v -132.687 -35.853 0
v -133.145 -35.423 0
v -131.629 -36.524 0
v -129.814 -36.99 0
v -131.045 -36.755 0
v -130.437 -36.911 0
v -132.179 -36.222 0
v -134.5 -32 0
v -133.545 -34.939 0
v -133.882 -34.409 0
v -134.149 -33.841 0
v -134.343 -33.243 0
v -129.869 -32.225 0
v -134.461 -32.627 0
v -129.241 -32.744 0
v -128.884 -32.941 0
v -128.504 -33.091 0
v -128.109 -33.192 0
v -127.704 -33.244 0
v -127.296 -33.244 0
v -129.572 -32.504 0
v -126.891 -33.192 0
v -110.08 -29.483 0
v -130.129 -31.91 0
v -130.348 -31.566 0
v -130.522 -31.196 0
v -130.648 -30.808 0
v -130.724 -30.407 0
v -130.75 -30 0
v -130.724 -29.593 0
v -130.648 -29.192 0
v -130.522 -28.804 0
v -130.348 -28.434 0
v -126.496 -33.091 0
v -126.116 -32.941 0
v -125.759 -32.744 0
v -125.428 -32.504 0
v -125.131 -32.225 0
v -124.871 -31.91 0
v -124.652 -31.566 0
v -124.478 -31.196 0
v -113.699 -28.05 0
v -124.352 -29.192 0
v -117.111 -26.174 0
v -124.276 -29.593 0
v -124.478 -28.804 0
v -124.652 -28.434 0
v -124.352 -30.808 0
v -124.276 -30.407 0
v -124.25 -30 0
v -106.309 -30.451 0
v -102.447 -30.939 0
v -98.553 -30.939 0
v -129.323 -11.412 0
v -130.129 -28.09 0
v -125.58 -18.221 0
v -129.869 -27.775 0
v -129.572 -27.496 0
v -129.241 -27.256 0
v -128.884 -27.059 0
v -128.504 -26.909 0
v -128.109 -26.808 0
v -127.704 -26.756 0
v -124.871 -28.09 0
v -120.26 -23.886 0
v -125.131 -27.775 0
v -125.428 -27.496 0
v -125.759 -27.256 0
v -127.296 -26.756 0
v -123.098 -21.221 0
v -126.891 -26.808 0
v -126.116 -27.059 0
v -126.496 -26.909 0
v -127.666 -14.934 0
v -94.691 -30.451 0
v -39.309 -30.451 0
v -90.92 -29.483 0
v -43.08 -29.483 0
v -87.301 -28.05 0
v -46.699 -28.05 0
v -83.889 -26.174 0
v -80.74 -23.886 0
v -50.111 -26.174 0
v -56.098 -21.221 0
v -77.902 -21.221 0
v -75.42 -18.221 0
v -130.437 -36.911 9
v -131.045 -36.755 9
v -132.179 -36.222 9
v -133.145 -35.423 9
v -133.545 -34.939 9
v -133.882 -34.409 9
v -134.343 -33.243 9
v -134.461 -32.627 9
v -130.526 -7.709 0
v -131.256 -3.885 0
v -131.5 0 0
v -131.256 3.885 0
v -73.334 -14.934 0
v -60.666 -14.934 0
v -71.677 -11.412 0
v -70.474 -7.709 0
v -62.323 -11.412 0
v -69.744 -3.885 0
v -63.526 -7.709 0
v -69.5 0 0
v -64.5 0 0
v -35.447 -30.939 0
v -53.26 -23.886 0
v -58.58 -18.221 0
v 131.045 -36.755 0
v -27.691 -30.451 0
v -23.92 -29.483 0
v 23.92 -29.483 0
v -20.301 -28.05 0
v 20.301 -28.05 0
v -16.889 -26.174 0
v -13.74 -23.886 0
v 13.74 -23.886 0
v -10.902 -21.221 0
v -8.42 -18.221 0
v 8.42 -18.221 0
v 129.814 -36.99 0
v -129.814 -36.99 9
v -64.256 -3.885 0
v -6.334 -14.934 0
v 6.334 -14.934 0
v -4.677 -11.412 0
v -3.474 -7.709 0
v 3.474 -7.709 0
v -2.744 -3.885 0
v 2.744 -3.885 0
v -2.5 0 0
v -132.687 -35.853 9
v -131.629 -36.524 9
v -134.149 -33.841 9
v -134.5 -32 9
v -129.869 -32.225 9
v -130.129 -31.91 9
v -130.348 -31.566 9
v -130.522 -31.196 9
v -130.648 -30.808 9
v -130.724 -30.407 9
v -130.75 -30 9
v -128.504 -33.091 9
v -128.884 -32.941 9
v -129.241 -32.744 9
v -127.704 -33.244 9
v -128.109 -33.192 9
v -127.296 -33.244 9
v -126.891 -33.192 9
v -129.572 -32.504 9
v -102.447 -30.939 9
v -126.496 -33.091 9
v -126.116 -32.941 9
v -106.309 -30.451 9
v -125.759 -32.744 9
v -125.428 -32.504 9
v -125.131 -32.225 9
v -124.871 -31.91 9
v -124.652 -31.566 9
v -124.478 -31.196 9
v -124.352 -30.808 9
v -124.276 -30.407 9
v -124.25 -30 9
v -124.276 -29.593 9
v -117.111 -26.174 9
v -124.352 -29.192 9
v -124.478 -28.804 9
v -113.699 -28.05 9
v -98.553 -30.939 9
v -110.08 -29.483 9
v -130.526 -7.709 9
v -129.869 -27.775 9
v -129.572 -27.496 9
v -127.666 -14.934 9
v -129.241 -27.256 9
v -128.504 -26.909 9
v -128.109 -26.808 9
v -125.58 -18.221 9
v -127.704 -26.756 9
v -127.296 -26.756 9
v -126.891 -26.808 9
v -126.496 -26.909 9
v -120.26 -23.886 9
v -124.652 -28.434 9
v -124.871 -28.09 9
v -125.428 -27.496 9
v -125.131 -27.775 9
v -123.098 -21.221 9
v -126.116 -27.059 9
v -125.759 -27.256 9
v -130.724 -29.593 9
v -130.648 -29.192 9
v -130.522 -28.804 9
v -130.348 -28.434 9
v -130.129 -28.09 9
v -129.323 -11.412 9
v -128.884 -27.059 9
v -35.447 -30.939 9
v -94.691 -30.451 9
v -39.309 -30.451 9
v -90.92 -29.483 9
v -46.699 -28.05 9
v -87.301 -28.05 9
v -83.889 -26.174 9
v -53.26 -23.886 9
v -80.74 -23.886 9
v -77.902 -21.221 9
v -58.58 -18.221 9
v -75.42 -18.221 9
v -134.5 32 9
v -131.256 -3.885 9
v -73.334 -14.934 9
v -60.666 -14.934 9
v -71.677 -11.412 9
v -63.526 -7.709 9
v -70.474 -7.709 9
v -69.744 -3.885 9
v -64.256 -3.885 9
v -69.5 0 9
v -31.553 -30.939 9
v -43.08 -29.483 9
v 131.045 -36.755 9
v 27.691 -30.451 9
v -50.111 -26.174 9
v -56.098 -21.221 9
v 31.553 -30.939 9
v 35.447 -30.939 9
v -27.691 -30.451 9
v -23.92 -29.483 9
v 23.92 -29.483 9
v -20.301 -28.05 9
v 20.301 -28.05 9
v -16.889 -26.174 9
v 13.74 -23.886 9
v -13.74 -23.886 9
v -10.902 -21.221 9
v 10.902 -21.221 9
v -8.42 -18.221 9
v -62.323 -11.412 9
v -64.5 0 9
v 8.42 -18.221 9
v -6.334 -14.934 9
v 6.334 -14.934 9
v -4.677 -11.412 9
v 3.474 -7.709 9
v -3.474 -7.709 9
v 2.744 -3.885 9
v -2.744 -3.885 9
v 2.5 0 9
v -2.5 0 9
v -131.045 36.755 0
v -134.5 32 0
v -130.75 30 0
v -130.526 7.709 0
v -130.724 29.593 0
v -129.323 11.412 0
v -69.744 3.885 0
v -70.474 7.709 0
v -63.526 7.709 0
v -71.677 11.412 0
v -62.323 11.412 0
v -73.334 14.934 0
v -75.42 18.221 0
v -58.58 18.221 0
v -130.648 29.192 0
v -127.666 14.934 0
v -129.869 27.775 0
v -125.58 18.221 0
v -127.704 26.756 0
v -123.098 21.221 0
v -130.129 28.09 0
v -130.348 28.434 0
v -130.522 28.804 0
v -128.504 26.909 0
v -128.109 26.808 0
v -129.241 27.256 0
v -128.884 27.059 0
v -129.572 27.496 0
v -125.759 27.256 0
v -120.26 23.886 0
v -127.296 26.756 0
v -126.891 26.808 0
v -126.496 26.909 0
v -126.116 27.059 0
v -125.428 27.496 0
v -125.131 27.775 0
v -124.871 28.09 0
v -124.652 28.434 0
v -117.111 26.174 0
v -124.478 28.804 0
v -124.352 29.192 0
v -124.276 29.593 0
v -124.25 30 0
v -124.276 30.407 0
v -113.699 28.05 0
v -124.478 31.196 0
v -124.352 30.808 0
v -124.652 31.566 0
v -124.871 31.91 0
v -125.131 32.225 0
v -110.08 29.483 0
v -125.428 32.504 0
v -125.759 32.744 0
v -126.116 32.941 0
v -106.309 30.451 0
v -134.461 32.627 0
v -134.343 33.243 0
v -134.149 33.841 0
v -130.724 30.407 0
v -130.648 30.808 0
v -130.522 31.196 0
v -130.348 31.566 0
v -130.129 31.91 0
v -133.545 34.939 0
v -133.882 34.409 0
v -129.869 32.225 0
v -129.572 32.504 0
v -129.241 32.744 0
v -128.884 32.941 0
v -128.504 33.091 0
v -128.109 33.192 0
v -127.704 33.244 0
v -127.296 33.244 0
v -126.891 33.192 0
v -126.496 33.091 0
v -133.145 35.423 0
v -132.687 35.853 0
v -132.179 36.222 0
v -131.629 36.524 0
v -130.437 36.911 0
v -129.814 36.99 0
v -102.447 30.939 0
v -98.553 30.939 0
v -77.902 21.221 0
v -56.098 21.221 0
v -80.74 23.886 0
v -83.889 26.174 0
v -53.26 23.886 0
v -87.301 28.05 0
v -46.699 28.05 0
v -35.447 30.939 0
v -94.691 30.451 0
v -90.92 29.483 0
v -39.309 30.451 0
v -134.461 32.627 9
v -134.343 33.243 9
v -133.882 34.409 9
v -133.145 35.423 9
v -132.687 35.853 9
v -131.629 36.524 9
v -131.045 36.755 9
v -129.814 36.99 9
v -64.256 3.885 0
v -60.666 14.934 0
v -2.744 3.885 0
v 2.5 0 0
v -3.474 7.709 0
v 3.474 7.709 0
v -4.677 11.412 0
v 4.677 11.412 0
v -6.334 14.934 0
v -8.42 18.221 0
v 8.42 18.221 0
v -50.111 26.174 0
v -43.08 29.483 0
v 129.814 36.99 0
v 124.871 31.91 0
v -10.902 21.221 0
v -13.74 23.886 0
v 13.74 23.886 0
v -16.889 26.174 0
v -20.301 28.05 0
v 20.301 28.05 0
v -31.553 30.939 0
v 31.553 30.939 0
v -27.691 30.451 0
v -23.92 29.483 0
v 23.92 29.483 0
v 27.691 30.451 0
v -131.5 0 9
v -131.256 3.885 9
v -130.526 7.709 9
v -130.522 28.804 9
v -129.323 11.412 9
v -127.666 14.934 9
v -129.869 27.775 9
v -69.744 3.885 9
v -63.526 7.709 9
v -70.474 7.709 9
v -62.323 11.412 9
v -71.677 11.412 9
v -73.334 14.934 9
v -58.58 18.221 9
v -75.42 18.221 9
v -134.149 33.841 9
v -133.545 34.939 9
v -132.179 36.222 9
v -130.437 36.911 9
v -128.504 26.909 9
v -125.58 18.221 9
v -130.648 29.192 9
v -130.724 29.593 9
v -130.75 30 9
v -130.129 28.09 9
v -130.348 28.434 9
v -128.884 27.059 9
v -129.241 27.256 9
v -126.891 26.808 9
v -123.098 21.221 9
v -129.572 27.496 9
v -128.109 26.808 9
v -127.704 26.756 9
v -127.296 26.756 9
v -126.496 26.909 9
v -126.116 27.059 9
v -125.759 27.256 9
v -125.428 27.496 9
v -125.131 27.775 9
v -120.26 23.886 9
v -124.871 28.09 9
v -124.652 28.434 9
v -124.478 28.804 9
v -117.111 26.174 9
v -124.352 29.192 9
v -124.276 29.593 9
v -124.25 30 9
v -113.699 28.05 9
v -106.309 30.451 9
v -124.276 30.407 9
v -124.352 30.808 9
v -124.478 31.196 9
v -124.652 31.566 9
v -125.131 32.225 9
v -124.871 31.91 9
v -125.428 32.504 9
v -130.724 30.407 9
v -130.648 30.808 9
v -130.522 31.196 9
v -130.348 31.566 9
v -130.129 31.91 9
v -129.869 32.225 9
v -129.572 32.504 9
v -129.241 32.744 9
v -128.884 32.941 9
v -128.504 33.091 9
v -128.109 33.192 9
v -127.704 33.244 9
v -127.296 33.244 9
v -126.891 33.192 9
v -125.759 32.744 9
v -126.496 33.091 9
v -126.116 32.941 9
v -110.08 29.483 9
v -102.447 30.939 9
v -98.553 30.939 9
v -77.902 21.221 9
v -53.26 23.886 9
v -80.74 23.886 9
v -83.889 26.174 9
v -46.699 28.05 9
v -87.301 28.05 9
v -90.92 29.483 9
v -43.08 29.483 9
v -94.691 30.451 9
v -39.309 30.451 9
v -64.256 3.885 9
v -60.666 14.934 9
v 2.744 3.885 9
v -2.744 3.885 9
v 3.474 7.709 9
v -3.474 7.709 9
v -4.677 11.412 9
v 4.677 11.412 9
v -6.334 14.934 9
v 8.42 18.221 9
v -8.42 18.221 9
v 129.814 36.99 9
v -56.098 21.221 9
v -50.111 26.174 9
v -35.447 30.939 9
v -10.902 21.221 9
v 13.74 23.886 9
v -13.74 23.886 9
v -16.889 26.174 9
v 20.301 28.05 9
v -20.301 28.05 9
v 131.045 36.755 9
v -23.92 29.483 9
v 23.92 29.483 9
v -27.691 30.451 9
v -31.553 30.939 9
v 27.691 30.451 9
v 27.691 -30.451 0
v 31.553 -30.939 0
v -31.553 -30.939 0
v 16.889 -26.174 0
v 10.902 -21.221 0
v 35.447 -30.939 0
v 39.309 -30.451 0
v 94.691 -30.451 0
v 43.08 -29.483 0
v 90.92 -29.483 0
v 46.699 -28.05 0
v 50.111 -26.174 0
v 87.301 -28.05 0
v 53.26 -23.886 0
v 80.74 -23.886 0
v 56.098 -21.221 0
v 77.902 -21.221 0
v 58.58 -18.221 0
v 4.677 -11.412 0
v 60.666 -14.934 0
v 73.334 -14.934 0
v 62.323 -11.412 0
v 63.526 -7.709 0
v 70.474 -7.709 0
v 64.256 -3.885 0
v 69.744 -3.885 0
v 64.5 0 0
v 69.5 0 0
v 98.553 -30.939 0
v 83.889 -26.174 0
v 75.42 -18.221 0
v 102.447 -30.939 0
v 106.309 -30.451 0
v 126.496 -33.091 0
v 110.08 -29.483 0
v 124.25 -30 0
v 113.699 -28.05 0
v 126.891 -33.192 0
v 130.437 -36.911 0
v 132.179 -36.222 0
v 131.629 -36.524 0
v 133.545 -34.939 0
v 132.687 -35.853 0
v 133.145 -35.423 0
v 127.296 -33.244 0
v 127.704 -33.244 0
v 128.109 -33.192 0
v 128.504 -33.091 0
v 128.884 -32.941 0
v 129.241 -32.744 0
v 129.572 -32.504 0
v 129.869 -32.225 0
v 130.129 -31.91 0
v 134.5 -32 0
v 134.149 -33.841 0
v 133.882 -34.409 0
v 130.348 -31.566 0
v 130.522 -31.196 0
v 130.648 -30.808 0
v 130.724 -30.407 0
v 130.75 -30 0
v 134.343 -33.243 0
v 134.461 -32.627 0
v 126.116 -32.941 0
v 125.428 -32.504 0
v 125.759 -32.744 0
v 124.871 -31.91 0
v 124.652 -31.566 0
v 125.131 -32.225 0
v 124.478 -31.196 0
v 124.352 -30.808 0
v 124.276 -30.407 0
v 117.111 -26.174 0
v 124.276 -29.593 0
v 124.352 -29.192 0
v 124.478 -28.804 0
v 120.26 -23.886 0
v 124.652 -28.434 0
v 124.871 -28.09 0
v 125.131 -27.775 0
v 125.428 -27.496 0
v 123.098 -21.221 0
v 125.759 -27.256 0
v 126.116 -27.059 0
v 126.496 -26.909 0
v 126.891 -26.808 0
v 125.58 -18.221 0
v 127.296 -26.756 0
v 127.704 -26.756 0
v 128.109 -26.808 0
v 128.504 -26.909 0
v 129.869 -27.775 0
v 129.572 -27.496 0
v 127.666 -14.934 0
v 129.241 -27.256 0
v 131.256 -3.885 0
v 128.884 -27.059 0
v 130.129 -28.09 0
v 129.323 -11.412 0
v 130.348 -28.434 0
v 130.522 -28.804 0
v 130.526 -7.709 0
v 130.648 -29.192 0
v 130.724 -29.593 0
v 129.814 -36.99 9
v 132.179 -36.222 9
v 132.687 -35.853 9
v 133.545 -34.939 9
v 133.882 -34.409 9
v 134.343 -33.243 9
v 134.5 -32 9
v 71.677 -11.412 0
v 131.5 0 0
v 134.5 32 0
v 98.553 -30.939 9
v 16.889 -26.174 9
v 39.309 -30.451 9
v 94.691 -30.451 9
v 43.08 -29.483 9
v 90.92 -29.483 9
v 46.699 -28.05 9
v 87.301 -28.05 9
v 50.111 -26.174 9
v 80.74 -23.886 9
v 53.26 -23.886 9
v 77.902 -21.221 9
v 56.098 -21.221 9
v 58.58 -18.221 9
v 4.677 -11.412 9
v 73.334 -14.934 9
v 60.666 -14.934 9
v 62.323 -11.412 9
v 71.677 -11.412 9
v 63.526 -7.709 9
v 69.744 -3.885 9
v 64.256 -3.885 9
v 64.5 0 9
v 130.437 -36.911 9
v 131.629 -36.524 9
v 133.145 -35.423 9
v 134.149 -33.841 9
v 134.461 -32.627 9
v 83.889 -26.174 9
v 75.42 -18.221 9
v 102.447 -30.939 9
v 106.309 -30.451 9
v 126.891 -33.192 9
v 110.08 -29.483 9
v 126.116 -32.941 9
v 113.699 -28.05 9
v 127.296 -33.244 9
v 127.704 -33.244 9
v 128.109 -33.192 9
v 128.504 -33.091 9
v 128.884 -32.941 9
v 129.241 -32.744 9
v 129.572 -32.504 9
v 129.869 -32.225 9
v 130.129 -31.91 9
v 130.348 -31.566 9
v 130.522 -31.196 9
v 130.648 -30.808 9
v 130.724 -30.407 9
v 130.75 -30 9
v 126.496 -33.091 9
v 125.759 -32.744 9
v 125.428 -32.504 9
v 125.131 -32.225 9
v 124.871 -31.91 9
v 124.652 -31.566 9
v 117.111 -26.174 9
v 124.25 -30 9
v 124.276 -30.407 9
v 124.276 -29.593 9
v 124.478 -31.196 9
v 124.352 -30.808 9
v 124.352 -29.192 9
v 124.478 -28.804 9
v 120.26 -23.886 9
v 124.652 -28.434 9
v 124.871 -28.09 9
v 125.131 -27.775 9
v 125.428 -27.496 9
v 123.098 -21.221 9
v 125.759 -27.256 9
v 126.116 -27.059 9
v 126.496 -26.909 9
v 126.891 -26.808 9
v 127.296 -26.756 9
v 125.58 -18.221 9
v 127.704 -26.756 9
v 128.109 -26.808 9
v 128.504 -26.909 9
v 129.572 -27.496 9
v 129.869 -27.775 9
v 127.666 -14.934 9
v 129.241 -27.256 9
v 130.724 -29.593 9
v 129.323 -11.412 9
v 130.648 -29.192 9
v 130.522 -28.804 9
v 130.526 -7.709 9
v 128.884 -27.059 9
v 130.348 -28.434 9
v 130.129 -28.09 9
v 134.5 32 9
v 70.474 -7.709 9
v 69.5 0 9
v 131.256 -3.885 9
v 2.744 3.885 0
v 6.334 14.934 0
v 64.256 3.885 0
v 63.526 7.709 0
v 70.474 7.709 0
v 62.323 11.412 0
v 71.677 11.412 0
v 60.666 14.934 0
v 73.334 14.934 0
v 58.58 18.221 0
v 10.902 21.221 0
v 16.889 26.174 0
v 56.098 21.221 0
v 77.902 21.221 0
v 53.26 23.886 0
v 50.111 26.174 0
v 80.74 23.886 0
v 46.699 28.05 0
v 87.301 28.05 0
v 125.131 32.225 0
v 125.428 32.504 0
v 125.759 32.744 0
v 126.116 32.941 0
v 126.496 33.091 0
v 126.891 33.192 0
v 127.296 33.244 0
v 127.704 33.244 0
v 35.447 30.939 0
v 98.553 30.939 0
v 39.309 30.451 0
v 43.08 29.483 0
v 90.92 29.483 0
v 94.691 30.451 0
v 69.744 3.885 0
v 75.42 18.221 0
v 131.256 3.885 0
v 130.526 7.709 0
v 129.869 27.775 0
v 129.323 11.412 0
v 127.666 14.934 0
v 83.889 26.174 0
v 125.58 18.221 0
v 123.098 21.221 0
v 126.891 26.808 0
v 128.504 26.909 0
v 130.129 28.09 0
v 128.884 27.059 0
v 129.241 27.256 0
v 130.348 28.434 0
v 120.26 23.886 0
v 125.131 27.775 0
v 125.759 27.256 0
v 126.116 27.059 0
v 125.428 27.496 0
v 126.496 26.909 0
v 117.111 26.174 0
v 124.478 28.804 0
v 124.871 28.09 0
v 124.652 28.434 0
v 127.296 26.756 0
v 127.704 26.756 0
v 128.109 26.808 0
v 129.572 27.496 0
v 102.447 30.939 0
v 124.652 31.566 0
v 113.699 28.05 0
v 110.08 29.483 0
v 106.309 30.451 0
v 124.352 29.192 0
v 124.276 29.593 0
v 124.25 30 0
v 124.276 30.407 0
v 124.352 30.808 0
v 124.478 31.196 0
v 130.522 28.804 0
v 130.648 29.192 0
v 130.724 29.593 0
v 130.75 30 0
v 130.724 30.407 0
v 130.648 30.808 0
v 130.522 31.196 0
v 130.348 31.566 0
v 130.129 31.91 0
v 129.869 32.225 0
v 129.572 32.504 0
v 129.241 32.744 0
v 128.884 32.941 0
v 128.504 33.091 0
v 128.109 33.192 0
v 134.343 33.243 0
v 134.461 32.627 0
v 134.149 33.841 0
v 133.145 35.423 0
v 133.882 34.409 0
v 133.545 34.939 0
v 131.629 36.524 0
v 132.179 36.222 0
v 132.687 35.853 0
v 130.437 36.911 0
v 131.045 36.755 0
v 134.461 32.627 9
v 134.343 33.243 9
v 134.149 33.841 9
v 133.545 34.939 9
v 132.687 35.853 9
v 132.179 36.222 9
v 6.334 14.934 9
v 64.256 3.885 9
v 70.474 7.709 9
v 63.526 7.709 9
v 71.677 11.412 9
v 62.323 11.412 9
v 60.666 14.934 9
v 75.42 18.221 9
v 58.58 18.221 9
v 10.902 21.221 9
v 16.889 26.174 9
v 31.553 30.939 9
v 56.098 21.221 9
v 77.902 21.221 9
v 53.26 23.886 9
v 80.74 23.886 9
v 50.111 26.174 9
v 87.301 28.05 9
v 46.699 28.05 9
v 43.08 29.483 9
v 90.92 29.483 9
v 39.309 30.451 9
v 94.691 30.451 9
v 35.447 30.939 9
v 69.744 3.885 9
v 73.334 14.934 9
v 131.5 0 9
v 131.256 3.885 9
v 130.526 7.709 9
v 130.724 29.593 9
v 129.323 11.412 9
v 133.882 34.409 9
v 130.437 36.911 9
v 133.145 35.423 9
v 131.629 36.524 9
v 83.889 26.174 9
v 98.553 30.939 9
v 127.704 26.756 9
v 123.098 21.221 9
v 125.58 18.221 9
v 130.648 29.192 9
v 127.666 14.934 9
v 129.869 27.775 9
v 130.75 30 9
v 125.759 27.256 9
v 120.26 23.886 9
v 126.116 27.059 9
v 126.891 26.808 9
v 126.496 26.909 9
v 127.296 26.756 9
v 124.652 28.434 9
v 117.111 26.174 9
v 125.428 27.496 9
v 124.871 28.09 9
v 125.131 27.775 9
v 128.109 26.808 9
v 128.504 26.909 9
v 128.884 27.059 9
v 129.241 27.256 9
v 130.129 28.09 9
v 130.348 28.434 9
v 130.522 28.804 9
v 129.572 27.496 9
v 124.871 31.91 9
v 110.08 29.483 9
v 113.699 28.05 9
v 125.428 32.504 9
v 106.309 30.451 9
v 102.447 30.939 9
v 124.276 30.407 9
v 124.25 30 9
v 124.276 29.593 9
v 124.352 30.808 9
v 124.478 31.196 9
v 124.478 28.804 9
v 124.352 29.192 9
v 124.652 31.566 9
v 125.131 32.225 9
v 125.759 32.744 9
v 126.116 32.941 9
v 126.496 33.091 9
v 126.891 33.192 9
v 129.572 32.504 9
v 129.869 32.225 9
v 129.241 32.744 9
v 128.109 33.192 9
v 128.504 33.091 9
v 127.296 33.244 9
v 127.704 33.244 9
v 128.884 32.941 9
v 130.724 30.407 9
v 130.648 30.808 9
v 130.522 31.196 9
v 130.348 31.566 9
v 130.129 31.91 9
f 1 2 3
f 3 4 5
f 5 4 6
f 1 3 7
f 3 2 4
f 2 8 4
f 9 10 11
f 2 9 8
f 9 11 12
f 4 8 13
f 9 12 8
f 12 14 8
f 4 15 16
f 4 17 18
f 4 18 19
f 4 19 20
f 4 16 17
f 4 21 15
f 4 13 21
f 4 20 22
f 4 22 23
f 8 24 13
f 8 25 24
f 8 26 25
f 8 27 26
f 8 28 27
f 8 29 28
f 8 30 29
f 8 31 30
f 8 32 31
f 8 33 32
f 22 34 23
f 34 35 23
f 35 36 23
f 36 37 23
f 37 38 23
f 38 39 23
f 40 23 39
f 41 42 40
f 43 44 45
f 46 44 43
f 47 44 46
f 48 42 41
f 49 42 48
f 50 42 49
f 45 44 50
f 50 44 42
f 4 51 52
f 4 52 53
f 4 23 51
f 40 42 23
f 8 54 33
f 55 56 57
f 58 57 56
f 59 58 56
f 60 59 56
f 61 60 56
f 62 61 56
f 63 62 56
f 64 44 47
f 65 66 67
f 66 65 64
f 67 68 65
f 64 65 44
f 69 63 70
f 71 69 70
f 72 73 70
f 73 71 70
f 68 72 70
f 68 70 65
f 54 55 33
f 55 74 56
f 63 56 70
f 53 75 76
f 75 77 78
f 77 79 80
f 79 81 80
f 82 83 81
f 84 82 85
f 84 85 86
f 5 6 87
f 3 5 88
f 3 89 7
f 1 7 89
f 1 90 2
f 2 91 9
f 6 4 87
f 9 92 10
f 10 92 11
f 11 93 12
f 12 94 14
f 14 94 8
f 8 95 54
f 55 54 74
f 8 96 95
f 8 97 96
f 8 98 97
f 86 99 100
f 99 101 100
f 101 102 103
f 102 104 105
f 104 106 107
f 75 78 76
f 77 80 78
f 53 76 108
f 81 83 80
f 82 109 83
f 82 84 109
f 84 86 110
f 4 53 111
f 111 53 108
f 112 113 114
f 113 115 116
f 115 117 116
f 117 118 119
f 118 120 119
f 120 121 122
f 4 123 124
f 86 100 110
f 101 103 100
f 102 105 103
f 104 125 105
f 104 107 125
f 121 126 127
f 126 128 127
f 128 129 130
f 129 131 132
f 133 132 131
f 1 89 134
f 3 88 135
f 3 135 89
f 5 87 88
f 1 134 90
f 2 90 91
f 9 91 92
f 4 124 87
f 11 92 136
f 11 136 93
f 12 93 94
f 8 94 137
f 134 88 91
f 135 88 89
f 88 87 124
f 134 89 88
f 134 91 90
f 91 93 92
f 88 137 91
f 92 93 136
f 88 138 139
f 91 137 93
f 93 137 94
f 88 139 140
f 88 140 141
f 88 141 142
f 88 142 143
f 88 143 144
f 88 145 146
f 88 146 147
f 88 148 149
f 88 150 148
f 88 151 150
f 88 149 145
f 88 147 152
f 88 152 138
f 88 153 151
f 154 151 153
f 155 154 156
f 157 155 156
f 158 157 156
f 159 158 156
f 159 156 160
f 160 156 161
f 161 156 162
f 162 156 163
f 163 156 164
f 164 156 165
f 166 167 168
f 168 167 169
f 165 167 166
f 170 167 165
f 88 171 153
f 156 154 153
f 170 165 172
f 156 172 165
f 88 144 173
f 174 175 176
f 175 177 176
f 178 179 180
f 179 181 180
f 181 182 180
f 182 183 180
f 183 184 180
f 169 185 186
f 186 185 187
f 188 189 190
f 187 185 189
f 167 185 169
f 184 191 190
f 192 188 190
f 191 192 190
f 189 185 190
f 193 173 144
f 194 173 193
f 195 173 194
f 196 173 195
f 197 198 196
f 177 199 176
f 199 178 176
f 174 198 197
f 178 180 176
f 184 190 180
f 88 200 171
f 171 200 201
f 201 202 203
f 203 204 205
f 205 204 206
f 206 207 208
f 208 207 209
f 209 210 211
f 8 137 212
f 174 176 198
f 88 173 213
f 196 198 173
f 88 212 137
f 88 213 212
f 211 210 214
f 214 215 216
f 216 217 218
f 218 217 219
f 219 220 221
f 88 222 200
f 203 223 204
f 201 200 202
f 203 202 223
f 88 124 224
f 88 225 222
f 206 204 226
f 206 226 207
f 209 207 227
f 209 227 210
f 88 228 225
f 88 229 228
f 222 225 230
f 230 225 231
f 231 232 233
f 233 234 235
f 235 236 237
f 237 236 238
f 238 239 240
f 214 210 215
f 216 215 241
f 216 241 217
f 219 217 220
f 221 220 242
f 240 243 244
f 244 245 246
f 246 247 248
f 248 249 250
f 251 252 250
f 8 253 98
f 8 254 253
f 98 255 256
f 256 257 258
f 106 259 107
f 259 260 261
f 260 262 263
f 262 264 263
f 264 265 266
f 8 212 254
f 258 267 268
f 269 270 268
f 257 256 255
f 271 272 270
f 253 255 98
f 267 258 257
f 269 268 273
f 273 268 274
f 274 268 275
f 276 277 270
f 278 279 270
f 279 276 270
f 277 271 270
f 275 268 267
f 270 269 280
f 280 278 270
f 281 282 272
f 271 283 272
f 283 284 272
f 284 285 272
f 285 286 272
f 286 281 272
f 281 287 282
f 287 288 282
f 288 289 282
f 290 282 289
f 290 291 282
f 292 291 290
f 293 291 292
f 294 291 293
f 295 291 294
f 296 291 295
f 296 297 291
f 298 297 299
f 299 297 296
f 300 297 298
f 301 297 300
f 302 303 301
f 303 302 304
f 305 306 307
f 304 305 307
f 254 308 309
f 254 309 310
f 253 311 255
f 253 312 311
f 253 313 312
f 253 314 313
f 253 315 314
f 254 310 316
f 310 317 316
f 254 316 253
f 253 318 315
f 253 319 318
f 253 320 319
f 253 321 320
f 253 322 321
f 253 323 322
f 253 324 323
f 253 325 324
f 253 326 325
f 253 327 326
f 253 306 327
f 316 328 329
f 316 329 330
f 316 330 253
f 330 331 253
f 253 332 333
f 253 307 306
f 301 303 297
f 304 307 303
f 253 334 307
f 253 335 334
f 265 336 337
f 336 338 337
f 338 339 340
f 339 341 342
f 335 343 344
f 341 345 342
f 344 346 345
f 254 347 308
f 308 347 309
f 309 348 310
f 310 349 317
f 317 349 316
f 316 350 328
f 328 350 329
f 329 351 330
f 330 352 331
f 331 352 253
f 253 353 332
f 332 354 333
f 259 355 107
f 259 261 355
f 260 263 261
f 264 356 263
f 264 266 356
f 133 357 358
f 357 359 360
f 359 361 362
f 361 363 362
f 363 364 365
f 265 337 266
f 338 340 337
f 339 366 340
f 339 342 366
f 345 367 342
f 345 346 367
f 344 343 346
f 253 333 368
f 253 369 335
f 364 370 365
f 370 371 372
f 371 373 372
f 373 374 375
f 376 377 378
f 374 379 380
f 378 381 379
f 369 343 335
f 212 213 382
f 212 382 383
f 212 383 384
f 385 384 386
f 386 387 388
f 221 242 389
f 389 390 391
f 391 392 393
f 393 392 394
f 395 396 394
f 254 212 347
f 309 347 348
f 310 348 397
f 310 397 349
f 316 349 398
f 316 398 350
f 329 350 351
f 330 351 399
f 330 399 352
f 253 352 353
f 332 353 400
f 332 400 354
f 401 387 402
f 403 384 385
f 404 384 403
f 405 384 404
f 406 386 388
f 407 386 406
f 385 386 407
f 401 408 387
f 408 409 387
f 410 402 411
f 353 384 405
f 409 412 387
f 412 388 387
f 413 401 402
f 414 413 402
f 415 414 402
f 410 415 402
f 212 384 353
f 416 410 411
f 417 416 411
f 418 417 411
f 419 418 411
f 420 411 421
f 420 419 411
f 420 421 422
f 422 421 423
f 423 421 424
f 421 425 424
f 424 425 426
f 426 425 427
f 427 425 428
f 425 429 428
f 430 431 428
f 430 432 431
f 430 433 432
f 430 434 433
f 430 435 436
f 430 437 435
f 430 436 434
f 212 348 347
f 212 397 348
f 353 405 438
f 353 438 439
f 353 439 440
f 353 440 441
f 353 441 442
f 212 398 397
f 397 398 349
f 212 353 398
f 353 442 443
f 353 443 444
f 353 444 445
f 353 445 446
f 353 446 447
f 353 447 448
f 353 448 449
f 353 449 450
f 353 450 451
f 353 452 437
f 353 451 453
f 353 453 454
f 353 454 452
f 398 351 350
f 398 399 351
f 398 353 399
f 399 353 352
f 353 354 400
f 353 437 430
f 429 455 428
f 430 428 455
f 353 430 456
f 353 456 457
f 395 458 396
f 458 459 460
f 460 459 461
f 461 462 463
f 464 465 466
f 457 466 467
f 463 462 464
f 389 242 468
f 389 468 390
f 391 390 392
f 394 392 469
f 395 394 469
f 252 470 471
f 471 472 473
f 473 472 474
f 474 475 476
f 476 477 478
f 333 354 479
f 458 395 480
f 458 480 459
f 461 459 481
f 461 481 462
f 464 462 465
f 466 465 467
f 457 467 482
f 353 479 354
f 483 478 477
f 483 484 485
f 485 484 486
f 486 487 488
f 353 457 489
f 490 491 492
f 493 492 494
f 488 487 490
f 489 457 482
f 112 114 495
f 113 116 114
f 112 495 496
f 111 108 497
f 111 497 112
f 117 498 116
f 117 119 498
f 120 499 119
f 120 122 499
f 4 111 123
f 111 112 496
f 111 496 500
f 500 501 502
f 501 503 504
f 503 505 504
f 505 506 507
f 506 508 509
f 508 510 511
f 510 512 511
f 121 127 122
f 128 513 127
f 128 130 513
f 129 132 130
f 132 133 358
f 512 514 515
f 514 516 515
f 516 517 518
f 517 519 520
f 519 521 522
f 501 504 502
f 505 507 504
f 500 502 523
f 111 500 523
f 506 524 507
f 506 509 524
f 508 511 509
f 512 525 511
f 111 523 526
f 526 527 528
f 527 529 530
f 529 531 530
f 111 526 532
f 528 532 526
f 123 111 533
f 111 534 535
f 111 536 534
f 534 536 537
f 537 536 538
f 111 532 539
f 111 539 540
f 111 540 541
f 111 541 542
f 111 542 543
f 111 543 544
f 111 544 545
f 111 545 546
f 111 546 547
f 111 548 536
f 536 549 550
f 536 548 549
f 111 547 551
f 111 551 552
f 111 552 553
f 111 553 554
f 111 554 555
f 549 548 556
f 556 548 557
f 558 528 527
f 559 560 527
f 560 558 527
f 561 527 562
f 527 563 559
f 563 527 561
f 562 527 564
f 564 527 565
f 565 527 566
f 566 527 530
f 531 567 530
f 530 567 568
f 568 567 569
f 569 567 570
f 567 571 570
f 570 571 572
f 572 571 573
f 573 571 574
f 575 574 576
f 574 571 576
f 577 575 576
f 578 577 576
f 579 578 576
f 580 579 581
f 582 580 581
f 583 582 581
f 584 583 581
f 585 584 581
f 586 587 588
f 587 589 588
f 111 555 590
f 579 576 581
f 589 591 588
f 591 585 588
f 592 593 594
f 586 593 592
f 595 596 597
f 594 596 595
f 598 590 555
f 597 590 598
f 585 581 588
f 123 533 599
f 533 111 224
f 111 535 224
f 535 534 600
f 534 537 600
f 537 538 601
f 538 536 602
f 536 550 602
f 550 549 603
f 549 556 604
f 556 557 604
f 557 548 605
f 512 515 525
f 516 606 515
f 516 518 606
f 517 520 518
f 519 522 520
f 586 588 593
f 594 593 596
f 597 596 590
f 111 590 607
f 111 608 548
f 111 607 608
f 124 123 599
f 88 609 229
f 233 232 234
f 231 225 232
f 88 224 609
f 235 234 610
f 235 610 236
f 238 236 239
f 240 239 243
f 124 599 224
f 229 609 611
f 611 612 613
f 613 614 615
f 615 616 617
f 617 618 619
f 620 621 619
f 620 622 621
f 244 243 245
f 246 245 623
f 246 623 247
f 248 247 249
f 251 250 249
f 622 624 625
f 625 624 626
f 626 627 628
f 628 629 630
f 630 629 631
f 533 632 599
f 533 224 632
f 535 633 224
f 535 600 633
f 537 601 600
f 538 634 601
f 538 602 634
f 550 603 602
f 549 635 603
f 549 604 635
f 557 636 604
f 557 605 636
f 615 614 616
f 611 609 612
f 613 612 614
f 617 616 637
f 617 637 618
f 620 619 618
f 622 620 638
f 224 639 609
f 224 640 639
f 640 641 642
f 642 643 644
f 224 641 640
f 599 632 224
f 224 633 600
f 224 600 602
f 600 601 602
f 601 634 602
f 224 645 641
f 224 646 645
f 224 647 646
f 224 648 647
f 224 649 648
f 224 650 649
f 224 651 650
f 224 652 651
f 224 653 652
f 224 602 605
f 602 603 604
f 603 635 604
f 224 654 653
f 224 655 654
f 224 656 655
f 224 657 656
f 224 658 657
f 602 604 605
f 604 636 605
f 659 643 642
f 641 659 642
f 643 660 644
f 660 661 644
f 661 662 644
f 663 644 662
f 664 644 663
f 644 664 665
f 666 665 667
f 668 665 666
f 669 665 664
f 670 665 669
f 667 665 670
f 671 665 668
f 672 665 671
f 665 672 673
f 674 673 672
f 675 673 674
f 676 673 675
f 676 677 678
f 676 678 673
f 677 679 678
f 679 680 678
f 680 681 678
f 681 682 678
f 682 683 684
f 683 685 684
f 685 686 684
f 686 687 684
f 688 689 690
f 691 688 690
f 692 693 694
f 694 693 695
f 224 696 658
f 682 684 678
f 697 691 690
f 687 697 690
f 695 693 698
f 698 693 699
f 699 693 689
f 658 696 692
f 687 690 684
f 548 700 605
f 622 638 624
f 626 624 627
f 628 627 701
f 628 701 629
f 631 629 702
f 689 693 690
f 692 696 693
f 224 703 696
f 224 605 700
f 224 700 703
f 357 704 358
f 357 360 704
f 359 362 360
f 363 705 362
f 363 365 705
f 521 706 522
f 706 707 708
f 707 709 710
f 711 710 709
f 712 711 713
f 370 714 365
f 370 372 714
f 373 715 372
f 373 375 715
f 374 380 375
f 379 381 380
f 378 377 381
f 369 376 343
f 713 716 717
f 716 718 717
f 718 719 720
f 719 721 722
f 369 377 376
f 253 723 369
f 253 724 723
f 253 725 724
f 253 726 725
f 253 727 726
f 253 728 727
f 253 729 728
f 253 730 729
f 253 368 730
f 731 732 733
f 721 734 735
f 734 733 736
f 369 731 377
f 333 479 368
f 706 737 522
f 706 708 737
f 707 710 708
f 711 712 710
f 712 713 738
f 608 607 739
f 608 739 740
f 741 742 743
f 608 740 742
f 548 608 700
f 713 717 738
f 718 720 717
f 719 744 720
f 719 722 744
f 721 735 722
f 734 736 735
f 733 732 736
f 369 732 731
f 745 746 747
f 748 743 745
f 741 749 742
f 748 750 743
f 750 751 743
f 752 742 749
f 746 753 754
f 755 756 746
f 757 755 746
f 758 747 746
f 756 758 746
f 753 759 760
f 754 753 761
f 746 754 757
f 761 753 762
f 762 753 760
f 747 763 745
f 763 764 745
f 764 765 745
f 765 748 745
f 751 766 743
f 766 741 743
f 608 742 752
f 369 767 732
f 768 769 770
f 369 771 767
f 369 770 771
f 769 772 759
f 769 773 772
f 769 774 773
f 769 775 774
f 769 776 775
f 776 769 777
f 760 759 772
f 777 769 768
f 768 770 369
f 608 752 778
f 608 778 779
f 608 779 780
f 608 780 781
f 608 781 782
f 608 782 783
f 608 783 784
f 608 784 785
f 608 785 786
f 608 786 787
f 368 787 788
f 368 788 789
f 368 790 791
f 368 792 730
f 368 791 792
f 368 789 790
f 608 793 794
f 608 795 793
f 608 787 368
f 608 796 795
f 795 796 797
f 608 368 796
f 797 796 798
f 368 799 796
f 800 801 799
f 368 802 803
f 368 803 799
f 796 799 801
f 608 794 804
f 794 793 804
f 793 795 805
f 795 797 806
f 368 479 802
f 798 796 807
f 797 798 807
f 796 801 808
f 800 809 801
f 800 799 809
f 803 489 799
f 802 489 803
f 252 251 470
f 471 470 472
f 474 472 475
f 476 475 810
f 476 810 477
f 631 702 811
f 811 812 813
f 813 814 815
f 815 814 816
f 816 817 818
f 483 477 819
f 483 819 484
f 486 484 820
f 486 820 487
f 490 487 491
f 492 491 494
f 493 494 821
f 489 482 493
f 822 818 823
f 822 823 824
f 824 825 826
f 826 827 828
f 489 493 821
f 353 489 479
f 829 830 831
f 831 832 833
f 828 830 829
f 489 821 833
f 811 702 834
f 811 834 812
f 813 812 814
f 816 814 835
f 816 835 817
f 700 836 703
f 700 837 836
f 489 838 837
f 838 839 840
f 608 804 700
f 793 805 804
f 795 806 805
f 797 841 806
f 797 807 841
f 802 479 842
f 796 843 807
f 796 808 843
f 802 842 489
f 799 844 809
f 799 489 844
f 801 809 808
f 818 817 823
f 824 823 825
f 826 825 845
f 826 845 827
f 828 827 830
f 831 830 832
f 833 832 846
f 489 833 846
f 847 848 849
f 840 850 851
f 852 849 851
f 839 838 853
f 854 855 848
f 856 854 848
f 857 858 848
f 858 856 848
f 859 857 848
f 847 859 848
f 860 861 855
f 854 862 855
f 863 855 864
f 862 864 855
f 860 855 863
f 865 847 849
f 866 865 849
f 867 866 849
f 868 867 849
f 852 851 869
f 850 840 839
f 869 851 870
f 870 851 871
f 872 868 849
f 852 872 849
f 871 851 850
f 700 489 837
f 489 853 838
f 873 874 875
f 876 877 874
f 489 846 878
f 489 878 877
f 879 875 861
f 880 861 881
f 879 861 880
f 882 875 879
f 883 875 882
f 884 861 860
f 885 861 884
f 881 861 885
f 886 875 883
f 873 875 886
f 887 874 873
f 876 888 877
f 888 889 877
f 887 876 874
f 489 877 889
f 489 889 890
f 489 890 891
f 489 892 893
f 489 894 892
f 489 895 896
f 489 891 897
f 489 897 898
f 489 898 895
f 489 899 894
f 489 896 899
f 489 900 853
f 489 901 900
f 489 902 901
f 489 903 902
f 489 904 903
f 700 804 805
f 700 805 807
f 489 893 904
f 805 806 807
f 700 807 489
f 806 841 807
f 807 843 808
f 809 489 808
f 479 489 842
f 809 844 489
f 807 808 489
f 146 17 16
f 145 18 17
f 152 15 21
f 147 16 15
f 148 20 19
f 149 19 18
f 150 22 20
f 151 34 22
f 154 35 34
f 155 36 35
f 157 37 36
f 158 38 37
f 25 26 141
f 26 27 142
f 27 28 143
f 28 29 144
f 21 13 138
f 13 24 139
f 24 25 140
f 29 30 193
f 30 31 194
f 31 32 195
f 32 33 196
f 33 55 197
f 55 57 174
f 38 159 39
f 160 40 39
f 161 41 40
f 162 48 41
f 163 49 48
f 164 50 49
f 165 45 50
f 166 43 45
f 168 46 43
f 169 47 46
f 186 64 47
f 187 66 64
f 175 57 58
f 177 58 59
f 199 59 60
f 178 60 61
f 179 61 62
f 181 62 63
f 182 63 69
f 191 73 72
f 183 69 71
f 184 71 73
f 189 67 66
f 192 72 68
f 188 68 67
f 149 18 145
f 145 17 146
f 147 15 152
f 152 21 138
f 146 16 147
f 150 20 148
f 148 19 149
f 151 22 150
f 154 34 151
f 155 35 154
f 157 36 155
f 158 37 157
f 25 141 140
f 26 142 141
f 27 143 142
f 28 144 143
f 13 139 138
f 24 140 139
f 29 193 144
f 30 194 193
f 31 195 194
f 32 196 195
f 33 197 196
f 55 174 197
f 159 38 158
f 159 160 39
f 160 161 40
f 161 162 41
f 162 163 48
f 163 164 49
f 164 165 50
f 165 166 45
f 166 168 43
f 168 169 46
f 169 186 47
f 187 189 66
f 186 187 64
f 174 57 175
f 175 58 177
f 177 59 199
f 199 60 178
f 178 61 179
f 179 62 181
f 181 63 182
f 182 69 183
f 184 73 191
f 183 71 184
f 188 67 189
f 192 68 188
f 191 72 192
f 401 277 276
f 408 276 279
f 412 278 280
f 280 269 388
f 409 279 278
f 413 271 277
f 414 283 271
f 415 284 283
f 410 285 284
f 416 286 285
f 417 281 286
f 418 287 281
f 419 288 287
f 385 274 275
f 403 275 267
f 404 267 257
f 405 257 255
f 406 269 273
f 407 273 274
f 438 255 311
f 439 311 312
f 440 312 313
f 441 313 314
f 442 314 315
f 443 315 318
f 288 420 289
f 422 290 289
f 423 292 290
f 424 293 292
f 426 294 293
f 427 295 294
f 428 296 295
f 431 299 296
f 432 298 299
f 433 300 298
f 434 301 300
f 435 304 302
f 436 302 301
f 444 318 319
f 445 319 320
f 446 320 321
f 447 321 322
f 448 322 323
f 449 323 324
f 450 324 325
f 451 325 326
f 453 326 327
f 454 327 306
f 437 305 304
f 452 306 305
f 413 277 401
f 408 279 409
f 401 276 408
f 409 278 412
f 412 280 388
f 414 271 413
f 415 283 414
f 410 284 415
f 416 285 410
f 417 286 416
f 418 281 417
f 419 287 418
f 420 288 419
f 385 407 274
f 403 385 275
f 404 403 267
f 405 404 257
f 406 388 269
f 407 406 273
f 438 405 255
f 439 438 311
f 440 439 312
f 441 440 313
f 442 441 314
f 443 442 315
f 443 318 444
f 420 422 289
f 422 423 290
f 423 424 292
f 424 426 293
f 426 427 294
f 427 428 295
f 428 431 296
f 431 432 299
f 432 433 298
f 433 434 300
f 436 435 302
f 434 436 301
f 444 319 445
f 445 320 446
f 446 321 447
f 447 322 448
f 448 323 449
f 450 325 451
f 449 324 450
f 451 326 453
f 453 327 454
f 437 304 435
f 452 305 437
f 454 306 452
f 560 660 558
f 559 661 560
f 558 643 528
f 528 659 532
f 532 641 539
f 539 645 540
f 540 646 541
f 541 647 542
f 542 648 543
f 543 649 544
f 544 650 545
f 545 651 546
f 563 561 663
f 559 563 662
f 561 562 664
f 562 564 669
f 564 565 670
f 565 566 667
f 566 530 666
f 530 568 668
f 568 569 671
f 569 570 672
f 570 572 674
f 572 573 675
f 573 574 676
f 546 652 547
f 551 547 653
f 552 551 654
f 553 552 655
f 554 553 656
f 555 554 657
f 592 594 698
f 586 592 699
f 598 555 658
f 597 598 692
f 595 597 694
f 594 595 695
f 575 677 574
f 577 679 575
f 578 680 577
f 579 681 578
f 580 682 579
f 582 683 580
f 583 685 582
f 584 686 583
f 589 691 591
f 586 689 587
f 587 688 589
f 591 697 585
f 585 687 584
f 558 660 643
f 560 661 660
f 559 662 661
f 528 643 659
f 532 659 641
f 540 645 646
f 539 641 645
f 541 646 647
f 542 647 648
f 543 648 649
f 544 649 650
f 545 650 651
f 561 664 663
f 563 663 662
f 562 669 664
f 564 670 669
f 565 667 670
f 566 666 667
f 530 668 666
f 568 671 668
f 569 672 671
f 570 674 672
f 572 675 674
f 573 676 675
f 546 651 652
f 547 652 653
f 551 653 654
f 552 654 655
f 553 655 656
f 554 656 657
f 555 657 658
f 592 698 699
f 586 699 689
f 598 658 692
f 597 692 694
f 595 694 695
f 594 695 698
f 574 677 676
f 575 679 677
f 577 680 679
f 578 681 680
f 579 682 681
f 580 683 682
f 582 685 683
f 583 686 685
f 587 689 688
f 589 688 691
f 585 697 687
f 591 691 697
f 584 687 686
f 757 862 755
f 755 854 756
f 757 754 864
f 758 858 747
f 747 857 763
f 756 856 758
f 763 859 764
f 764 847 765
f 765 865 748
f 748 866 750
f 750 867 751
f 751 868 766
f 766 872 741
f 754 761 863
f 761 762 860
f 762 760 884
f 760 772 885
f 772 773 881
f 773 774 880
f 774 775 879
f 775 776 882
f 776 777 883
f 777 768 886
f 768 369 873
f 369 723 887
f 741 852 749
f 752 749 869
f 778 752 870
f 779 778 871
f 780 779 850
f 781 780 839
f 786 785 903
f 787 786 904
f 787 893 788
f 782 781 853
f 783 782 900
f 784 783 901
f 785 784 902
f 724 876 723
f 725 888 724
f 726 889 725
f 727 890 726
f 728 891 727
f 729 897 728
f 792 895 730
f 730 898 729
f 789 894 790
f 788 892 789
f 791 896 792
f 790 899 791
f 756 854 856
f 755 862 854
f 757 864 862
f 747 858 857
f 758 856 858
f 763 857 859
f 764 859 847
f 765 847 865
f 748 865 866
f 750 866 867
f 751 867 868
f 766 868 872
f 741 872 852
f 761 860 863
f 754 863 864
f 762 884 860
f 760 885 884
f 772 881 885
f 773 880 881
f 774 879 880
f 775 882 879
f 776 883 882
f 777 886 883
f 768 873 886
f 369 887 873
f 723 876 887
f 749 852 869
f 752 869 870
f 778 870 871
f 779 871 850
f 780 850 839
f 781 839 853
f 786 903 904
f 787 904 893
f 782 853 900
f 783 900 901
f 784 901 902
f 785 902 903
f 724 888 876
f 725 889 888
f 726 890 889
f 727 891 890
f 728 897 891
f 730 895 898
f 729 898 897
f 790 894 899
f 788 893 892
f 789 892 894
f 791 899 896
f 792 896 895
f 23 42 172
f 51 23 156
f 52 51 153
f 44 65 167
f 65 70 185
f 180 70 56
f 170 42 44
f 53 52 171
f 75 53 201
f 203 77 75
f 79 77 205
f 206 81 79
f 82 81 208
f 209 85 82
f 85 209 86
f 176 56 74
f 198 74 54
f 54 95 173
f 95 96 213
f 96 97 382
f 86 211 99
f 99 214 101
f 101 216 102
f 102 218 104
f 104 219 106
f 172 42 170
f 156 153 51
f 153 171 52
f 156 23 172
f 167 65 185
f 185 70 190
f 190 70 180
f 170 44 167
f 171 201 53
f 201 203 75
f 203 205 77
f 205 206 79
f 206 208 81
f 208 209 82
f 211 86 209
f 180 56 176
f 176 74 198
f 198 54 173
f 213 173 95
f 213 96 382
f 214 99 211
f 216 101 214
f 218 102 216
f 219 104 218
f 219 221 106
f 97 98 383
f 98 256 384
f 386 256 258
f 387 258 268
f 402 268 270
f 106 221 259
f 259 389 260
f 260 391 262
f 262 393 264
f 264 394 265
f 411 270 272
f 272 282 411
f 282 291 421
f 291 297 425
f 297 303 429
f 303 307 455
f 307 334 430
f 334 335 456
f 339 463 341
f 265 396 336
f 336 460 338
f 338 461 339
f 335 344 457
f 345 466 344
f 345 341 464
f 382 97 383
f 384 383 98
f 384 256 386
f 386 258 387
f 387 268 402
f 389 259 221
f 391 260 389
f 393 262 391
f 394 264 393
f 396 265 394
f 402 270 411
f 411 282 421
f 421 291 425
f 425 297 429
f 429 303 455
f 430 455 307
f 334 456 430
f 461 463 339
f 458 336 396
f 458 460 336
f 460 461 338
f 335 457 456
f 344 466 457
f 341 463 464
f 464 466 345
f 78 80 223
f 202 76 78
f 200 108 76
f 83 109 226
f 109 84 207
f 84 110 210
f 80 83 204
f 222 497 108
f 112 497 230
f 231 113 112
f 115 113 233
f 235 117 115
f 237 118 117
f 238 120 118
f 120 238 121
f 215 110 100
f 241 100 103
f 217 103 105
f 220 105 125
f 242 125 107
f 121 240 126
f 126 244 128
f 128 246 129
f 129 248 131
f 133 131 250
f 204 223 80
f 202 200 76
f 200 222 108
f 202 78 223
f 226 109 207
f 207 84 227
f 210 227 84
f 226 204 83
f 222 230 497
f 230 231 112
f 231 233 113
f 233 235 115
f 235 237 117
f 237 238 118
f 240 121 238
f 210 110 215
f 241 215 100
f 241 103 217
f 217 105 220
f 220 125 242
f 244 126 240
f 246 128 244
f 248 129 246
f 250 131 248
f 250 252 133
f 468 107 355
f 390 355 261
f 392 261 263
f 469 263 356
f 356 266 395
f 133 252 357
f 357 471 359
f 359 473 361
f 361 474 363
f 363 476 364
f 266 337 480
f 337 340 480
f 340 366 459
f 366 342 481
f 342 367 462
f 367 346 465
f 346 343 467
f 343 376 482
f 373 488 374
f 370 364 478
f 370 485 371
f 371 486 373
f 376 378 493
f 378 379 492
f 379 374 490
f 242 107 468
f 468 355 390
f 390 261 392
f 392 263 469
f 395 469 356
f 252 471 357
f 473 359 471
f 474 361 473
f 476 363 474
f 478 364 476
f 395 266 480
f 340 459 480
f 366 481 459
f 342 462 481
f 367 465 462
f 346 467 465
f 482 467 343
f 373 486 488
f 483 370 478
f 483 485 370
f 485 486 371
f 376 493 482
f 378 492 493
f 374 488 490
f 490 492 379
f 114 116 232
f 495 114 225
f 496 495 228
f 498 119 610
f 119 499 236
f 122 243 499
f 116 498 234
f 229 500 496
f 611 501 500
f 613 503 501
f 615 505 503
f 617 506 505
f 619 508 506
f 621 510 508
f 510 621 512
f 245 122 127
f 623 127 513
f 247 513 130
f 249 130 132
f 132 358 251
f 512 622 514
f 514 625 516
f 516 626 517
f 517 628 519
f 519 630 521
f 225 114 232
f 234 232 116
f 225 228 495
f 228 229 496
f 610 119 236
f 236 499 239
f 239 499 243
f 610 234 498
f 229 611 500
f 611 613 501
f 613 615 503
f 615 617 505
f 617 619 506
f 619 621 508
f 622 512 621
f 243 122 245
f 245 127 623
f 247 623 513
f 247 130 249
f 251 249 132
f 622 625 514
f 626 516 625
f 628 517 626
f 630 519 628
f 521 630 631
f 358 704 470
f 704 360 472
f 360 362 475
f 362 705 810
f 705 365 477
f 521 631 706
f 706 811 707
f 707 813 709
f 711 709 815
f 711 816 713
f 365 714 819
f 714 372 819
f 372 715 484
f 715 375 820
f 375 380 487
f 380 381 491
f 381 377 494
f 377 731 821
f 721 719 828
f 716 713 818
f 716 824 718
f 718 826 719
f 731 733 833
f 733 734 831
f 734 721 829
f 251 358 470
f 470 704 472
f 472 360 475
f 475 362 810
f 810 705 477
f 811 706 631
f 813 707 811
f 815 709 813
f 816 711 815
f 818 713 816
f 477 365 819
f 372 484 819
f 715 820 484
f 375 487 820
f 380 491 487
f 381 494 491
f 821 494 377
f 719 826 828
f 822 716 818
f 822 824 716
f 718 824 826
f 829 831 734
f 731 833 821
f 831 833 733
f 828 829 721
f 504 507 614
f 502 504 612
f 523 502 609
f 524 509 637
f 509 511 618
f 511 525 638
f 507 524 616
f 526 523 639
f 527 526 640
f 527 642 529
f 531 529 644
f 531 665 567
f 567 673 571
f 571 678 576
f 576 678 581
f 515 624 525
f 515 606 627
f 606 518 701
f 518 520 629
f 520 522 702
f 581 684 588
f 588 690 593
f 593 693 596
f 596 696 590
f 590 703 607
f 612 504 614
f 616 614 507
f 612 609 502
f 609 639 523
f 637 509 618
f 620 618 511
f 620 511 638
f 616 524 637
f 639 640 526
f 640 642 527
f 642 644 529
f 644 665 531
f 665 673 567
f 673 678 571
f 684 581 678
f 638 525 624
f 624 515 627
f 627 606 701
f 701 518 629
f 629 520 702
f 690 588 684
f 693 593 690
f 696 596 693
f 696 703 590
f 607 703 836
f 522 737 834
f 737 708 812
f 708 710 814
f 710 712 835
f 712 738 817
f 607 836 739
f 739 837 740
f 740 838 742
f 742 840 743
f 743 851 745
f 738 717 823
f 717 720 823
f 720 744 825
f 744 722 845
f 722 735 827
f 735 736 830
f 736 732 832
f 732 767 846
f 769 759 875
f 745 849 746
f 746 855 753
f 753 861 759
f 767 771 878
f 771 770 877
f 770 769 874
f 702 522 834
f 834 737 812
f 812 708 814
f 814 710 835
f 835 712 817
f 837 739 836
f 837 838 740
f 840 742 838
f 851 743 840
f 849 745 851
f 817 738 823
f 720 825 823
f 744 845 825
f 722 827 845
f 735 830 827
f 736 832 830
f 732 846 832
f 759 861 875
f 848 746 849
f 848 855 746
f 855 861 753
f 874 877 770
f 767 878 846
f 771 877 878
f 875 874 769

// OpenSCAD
$fn = 50;

difference() {
	union() {
		hull() {
			translate(v = [-129.5, 32.0, 0]) {
				cylinder(h = 9, r = 5);
			}
			translate(v = [129.5, 32.0, 0]) {
				cylinder(h = 9, r = 5);
			}
			translate(v = [-129.5, -32.0, 0]) {
				cylinder(h = 9, r = 5);
			}
			translate(v = [129.5, -32.0, 0]) {
				cylinder(h = 9, r = 5);
			}
		}
	}
	union() {
		translate(v = [-127.5, -30.0, -100.0]) {
			cylinder(h = 200, r = 3.25);
		}
		translate(v = [-127.5, 30.0, -100.0]) {
			cylinder(h = 200, r = 3.25);
		}
		translate(v = [127.5, -30.0, -100.0]) {
			cylinder(h = 200, r = 3.25);
		}
		translate(v = [127.5, 30.0, -100.0]) {
			cylinder(h = 200, r = 3.25);
		}
		translate(v = [-127.5, -30.0, -100.0]) {
			cylinder(h = 200, r = 1.8);
		}
		translate(v = [-127.5, 30.0, -100.0]) {
			cylinder(h = 200, r = 1.8);
		}
		translate(v = [127.5, -30.0, -100.0]) {
			cylinder(h = 200, r = 1.8);
		}
		translate(v = [127.5, 30.0, -100.0]) {
			cylinder(h = 200, r = 1.8);
		}
		translate(v = [-100.5, 0, 0.0]) {
			cylinder(h = 9, r = 31.0);
		}
		translate(v = [-33.5, 0, 0.0]) {
			cylinder(h = 9, r = 31.0);
		}
		translate(v = [33.5, 0, 0.0]) {
			cylinder(h = 9, r = 31.0);
		}
		translate(v = [100.5, 0, 0.0]) {
			cylinder(h = 9, r = 31.0);
		}
	}
}
